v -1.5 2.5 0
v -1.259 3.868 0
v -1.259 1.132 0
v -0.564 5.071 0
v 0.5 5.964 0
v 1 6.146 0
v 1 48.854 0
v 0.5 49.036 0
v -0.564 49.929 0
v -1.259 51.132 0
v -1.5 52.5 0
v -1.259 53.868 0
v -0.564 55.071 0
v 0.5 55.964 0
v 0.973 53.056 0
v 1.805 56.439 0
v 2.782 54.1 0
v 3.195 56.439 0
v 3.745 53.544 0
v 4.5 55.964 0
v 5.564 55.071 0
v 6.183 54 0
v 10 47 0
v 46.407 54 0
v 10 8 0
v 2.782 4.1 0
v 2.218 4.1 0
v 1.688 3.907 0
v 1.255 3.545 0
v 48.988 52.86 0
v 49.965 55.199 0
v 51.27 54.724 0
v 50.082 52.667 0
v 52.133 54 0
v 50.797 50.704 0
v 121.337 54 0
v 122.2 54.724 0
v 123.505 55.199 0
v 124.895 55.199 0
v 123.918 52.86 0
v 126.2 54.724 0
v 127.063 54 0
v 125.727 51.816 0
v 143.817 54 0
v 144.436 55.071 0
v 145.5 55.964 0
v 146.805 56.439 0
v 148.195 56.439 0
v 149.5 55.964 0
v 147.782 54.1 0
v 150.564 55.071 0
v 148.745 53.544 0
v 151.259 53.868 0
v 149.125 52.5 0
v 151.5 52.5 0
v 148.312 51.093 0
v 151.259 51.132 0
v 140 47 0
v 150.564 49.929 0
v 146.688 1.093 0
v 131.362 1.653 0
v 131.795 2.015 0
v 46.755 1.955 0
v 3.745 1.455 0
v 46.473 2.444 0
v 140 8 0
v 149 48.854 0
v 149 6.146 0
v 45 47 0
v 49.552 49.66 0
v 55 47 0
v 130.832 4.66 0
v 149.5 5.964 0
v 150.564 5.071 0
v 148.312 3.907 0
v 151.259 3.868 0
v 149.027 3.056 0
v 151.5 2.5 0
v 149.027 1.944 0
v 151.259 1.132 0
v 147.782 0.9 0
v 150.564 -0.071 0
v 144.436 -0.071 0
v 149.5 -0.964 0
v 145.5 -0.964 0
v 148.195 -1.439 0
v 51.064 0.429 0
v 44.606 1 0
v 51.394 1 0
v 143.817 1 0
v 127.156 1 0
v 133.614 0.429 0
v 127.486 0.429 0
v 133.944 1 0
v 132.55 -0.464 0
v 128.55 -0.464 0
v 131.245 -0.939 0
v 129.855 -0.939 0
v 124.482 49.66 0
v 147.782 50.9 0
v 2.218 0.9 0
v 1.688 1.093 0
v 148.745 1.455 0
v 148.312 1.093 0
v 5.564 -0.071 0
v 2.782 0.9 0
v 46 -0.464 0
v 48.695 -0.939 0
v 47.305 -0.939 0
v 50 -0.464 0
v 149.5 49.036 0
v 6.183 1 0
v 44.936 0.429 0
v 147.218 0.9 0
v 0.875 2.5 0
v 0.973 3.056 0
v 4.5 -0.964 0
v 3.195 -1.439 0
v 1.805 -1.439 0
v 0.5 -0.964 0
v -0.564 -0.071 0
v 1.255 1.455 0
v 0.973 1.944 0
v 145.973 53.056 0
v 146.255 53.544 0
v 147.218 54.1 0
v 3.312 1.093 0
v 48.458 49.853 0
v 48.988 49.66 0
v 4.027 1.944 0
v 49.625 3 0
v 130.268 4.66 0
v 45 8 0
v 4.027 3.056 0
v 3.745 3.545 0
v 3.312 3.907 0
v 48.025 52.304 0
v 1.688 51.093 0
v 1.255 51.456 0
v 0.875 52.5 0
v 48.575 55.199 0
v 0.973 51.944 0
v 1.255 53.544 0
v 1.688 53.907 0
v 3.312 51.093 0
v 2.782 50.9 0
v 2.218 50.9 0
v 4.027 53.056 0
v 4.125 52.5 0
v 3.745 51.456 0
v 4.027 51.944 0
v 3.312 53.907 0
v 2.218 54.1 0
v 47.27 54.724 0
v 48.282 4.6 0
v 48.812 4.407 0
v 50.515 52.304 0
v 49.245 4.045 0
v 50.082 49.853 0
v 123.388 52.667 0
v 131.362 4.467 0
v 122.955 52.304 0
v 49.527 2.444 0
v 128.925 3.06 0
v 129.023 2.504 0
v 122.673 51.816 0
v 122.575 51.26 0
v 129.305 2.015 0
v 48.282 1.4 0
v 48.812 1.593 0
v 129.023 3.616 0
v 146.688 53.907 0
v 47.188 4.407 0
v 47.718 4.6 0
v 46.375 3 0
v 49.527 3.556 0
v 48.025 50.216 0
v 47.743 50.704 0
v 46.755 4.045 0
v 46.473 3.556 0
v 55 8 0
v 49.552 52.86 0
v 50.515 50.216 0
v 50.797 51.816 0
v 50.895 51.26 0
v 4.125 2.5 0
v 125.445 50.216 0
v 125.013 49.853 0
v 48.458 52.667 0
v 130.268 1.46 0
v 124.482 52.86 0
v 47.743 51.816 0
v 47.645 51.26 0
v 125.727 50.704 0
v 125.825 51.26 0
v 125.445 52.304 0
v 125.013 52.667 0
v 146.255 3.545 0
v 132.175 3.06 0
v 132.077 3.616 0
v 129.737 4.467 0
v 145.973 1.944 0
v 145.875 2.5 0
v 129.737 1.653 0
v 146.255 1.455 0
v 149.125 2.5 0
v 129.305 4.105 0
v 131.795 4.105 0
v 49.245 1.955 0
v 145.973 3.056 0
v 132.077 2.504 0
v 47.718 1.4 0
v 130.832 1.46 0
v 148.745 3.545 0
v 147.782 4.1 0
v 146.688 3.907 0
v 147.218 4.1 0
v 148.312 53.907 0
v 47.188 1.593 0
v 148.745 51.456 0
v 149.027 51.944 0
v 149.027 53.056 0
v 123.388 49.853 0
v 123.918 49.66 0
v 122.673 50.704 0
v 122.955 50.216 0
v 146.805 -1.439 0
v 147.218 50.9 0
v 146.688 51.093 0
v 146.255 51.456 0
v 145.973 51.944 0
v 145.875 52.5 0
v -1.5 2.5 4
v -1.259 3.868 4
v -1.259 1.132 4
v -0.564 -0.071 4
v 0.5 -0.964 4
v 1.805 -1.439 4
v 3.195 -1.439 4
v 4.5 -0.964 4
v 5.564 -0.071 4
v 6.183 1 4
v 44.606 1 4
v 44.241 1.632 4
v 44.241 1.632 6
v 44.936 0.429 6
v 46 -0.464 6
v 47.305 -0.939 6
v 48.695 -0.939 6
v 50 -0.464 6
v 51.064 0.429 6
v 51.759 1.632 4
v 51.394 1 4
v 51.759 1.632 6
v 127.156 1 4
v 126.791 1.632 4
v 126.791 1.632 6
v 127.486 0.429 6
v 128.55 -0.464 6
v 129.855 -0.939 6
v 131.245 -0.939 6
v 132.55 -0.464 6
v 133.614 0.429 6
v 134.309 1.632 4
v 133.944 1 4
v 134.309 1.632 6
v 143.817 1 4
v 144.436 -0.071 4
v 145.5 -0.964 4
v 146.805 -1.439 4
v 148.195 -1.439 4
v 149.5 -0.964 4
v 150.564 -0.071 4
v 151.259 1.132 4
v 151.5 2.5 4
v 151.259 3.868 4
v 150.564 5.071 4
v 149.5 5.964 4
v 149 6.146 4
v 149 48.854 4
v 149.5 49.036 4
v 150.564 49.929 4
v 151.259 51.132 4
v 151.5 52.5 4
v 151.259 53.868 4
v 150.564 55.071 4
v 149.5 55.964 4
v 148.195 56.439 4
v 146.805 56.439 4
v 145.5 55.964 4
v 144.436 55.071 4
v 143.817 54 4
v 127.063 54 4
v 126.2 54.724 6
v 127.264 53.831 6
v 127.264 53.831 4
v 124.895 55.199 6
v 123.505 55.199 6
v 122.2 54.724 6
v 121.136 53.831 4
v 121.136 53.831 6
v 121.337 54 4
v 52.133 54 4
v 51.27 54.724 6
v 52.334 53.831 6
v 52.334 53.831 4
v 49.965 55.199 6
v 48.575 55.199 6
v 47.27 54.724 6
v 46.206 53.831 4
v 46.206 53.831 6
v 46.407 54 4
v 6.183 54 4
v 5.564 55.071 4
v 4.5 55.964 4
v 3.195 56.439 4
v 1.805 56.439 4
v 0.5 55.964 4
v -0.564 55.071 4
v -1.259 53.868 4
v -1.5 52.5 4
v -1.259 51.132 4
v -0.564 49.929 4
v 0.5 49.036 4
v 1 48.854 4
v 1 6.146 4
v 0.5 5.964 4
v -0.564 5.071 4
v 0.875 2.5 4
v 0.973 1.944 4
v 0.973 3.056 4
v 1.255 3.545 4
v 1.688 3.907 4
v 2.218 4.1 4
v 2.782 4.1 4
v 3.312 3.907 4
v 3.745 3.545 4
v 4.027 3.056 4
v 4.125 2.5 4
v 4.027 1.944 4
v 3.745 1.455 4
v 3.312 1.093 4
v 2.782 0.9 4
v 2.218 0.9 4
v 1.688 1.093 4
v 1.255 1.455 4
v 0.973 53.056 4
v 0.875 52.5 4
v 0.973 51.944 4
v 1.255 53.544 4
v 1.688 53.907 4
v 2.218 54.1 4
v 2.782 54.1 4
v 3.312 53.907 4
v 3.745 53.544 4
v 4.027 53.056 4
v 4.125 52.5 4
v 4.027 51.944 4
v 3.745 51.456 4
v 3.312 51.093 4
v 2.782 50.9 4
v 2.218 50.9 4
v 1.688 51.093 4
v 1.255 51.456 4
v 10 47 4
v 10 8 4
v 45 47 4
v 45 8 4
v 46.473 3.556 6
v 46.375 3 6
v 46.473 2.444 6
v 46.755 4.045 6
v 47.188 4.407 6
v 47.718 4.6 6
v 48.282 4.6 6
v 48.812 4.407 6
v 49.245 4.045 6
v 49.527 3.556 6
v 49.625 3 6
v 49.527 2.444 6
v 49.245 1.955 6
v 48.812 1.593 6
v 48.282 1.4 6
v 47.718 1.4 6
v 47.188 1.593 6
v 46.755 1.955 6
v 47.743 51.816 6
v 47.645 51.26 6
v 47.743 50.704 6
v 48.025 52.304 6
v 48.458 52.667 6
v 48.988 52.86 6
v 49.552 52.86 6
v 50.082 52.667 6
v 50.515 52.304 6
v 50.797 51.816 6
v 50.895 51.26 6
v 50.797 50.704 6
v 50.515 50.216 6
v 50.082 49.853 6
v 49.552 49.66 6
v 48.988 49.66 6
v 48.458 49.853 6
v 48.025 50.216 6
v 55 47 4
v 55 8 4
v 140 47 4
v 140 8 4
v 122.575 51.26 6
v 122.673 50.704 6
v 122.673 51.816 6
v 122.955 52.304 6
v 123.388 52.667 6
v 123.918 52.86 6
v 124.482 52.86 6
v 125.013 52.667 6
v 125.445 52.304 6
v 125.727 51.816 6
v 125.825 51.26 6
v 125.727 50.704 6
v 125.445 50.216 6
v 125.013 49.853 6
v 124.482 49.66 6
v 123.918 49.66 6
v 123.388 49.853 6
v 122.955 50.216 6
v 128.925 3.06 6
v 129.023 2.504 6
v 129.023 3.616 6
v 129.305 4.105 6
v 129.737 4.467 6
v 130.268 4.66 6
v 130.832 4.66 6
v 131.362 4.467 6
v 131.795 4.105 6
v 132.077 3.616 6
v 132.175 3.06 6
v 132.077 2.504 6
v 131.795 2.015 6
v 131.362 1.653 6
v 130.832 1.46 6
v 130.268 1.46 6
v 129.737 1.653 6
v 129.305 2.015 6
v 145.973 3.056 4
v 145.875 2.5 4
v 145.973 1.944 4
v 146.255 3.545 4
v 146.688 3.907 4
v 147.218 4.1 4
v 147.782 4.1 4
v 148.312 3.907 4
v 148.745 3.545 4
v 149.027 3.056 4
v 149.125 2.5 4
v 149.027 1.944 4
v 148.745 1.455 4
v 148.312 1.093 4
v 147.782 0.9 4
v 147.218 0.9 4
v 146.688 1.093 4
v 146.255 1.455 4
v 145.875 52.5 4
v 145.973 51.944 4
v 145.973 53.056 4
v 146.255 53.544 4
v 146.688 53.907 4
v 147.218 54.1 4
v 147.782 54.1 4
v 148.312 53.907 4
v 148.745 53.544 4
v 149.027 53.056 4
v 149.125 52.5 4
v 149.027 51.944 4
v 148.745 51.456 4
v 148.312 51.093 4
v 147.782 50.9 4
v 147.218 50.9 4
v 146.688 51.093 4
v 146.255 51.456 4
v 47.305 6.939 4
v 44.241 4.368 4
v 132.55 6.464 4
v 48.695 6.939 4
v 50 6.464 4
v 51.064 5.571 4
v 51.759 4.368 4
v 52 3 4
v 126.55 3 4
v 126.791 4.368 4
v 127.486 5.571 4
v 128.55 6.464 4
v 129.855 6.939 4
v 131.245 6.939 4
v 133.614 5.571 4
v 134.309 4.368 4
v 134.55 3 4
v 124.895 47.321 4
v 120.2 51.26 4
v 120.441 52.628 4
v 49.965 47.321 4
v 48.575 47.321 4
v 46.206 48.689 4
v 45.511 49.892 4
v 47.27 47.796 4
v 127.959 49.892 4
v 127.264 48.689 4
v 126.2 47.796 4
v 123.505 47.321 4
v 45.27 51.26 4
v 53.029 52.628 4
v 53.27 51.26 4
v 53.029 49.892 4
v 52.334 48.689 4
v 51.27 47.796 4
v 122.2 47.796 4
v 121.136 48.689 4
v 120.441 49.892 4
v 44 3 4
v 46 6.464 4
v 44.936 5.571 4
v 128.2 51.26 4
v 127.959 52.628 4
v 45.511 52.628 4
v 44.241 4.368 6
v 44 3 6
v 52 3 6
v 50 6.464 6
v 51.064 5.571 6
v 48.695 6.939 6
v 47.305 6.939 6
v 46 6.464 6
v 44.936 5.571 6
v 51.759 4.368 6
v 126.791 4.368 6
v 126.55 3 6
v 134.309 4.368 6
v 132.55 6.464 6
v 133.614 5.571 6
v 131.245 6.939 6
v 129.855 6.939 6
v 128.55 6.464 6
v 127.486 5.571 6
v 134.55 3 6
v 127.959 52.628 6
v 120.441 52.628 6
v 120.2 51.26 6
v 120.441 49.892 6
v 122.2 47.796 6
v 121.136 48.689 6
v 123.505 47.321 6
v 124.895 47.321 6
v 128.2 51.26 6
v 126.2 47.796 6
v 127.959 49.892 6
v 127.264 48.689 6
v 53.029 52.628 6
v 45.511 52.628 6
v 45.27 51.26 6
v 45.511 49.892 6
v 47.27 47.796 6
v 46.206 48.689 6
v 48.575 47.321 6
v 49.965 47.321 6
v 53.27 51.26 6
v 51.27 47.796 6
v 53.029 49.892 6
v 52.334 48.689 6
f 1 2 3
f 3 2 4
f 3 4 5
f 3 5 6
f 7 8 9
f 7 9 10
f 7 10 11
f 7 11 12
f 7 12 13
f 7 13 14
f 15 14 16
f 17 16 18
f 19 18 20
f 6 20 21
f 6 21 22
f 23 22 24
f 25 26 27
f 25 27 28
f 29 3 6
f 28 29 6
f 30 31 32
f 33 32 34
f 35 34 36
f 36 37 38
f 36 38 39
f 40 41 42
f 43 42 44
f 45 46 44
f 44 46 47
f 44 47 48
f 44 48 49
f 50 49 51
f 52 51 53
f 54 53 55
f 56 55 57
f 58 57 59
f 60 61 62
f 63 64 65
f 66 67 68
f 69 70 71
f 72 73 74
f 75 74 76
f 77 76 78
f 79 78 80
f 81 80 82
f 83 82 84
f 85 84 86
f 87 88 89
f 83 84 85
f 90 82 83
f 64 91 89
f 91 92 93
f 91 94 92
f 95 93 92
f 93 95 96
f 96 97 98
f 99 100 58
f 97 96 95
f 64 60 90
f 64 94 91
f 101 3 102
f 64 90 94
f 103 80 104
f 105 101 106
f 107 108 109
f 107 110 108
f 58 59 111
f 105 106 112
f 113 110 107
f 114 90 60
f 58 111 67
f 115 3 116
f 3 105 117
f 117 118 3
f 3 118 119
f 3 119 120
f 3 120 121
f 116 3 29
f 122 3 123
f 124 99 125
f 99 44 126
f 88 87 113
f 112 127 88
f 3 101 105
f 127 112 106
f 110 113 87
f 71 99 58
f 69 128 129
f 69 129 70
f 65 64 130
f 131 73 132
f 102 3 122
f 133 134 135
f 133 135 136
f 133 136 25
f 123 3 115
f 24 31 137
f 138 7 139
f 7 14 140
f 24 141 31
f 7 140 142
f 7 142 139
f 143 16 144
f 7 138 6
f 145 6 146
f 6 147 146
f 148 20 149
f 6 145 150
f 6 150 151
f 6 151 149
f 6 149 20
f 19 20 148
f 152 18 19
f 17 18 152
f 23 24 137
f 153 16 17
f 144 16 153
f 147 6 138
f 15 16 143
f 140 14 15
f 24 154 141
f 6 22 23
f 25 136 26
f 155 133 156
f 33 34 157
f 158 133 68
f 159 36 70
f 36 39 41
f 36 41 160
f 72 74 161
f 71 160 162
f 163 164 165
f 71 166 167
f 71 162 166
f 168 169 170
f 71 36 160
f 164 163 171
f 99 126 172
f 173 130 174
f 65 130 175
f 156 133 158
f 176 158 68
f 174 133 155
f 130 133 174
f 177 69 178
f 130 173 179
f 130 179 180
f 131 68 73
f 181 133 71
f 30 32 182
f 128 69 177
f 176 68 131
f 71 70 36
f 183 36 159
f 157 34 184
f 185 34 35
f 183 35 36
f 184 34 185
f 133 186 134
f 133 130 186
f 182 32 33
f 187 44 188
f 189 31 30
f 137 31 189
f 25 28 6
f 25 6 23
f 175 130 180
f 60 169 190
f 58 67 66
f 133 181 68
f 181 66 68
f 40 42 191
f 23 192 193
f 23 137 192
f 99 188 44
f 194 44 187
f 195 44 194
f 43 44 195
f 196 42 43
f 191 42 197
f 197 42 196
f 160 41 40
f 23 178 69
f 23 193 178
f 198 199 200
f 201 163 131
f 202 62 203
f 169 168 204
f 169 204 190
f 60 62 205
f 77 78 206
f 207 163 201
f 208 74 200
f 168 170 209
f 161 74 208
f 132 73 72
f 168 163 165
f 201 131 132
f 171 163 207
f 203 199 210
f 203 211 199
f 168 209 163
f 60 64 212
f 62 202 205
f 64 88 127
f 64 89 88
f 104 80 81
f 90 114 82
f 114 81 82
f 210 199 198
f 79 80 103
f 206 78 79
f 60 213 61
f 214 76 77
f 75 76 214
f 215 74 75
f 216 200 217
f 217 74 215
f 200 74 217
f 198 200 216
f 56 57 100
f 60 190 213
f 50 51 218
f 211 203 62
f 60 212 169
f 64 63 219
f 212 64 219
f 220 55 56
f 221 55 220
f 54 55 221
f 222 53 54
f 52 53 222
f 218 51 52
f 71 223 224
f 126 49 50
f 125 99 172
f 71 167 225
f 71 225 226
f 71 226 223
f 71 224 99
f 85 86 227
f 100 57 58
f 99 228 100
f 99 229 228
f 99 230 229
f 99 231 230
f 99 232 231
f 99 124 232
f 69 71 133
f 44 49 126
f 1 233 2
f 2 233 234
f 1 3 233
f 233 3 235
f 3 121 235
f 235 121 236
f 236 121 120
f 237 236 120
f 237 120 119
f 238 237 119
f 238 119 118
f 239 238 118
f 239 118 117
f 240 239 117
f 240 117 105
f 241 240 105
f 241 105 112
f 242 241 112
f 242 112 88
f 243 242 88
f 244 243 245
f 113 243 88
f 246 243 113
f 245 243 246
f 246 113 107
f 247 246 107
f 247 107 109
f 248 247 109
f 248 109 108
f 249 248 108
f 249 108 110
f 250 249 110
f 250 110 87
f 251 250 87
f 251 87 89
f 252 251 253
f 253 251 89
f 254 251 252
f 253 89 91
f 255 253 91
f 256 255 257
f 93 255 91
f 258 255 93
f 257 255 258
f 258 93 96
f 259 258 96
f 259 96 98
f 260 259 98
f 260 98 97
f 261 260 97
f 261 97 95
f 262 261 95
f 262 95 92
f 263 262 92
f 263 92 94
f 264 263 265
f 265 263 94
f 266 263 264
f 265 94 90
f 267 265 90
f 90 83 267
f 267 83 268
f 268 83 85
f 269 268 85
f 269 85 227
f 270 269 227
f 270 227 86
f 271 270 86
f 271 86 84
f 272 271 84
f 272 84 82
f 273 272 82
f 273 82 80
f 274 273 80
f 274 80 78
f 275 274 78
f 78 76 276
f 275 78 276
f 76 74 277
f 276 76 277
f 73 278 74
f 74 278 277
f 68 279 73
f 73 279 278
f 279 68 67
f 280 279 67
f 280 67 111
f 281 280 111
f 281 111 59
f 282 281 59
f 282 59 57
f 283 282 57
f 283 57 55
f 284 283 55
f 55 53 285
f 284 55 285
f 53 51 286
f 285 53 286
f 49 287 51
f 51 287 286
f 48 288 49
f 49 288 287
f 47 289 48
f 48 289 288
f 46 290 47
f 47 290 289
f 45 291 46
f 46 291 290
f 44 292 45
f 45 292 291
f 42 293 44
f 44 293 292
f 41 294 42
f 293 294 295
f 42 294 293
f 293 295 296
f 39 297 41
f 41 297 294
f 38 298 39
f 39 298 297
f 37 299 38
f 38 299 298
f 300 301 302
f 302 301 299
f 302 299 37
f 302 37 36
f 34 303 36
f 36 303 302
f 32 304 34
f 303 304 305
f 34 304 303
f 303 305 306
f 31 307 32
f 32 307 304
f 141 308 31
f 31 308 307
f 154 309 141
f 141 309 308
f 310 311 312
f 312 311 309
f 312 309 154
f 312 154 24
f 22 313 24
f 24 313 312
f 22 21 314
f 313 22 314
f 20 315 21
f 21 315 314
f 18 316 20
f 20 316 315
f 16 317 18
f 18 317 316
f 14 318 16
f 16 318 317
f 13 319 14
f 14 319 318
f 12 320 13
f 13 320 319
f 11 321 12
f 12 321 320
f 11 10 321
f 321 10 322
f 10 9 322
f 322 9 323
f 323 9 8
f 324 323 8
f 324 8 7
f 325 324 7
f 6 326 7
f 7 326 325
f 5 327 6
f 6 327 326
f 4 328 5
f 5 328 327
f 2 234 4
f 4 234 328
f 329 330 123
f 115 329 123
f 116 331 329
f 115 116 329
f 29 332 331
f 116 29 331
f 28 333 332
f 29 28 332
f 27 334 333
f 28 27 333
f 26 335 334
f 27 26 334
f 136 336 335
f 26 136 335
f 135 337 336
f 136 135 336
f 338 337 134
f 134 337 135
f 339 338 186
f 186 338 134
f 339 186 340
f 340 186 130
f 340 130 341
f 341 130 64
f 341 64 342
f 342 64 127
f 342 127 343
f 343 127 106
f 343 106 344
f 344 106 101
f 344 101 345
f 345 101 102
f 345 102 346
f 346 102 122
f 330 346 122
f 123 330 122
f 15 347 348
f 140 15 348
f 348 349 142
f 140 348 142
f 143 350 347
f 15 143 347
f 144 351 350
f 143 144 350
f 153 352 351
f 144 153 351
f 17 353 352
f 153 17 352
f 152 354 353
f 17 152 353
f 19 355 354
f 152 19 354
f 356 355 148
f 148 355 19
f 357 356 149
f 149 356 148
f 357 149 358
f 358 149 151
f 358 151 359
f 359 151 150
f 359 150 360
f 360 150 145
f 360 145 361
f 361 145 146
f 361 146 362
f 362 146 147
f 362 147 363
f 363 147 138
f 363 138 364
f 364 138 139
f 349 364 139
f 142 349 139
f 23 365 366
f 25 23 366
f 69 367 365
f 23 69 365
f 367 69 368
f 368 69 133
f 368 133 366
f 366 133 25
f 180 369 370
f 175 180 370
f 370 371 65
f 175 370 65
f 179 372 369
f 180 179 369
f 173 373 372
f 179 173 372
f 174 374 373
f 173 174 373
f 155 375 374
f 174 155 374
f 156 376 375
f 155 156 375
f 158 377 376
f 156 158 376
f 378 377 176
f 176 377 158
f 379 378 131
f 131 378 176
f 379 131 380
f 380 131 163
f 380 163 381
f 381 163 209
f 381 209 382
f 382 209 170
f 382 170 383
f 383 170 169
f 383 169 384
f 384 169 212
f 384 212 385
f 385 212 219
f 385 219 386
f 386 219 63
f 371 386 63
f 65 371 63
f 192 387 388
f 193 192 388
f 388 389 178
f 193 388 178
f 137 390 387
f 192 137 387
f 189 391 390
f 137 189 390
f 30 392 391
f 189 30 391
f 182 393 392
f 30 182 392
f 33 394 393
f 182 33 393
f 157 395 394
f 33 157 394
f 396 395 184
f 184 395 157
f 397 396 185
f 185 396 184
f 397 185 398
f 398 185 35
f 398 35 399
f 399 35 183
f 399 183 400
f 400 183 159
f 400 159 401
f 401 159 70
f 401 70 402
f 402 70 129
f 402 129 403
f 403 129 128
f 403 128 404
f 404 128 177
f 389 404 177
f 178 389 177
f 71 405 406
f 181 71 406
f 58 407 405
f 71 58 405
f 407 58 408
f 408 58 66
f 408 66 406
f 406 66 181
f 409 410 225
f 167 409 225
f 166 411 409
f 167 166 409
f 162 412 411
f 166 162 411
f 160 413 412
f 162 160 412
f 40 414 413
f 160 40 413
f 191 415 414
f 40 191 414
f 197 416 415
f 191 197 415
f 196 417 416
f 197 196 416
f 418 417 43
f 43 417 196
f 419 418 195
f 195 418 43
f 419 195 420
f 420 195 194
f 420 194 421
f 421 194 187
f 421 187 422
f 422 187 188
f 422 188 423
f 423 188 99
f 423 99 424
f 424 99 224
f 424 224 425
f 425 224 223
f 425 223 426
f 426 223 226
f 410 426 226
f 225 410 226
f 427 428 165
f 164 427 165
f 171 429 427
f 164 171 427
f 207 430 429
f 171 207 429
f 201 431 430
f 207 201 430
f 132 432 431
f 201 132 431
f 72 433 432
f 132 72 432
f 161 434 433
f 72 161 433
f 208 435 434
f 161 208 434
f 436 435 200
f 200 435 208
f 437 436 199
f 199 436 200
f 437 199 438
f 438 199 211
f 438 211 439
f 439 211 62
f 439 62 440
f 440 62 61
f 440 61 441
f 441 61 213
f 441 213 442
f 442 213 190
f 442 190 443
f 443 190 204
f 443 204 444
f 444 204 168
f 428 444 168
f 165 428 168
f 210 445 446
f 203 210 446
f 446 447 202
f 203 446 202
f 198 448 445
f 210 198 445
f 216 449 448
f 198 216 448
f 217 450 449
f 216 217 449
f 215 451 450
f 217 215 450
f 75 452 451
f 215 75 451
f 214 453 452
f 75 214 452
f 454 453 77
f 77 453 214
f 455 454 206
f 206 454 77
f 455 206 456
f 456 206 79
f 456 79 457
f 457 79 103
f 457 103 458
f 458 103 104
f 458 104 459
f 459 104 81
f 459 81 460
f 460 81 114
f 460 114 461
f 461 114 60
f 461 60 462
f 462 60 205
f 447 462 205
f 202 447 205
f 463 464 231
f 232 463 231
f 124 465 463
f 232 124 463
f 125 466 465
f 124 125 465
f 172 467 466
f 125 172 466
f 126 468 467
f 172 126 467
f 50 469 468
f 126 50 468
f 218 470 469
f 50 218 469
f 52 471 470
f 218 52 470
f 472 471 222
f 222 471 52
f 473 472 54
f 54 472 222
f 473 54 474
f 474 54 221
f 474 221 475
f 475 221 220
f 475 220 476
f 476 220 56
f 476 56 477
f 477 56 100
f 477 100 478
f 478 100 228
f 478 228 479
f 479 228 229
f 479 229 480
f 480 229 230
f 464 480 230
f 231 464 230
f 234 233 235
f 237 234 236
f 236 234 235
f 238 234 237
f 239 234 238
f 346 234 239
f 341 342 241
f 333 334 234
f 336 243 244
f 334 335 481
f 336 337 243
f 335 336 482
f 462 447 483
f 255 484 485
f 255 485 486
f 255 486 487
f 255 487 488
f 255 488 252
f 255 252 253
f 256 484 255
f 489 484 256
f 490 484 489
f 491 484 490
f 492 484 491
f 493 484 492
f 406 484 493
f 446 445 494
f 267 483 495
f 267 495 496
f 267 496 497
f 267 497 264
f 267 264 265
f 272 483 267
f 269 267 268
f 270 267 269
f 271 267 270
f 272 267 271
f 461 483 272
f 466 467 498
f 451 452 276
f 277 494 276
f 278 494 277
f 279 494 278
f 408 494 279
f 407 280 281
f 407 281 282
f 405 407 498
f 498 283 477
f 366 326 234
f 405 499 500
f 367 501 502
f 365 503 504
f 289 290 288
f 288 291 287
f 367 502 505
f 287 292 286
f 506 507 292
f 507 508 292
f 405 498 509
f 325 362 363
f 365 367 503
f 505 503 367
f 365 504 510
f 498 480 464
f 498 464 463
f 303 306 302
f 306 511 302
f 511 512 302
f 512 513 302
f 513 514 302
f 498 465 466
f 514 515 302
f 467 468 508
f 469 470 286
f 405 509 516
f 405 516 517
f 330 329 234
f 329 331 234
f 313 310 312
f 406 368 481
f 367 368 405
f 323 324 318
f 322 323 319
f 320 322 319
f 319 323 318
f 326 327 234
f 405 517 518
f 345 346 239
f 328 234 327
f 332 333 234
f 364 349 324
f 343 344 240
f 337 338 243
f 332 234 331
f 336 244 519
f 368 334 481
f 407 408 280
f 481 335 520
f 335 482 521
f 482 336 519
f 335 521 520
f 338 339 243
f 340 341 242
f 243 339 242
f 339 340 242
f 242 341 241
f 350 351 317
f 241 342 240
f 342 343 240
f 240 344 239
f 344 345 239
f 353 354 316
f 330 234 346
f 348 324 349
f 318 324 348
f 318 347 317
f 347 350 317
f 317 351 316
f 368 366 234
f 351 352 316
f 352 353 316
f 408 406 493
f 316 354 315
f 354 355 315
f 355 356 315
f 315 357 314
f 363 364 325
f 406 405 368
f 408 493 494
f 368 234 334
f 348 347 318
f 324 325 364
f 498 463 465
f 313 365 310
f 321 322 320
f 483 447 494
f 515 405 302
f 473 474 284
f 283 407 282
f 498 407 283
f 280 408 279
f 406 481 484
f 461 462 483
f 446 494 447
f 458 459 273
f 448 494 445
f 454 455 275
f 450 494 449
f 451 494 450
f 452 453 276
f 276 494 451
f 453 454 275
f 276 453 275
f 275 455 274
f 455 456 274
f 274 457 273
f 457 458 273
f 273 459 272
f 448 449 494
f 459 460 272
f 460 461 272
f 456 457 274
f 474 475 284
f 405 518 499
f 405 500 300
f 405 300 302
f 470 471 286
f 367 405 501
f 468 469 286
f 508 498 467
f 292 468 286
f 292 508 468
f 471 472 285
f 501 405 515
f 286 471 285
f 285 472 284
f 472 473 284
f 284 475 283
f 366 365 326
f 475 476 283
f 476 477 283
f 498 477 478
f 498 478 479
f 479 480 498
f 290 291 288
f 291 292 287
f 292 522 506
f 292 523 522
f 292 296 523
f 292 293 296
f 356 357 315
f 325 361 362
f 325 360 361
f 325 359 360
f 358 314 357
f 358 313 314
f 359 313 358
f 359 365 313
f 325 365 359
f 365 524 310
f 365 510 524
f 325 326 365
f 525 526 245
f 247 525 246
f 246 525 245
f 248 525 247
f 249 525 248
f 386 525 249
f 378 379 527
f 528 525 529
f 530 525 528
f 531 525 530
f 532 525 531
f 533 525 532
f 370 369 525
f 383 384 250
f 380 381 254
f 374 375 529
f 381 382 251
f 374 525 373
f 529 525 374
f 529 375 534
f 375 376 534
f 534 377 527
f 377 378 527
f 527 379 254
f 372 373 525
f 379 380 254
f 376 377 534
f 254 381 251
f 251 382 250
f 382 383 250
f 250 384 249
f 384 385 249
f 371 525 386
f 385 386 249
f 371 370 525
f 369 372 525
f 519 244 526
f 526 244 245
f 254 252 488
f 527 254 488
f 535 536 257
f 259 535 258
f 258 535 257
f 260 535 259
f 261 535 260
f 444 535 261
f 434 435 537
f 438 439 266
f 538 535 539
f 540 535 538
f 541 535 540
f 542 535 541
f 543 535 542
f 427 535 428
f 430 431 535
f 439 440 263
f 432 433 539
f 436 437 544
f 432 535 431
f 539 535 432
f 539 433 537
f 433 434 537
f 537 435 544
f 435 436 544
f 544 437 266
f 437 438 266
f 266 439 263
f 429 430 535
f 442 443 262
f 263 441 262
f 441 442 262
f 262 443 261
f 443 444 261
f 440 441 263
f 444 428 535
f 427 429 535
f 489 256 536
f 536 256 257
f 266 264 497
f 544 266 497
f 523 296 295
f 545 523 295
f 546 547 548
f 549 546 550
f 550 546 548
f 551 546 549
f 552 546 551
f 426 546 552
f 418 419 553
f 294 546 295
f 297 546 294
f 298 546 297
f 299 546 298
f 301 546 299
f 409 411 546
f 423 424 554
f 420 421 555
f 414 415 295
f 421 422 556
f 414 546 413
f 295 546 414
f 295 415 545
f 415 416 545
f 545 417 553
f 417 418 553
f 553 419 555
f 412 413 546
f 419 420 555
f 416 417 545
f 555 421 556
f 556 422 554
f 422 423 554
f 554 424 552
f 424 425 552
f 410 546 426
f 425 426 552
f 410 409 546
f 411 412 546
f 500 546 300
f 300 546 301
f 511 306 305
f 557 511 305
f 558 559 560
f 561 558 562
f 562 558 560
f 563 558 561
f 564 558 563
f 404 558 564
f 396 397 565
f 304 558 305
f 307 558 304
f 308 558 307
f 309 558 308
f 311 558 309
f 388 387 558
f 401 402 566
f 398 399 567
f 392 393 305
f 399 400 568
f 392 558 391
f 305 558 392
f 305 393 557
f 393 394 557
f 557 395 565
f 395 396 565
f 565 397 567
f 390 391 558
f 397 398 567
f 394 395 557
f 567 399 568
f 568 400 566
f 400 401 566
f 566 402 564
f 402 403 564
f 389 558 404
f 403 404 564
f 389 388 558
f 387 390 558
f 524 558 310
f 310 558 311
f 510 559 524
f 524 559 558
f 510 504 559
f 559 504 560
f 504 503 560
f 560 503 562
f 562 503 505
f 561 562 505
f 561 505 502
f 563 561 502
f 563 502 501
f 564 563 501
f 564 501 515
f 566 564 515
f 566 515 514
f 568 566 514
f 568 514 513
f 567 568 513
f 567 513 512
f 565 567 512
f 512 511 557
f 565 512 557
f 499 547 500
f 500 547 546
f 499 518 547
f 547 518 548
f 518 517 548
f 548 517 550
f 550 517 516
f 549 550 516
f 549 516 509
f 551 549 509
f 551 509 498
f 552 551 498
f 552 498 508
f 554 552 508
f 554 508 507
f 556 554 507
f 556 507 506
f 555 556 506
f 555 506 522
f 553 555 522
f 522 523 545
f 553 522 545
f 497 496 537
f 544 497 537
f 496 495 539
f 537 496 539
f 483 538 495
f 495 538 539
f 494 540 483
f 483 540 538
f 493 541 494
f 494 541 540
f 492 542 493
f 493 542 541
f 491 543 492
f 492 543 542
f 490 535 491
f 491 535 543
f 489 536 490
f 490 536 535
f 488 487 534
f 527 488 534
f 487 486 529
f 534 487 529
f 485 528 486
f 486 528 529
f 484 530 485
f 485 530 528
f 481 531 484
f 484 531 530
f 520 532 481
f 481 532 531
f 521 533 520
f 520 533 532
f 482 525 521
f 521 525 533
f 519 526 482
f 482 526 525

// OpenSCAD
$fn=18;
holes_size_inner=3.25;
holes_size_outter=8;
holes_support = 6;

difference() 
{
	// Solids
	union()
	{
	// LCD
	translate([1,1,0])
		cube(size=[148,53,4]);
	translate([2.5,2.5,0])
		cylinder(h=4,d=holes_size_outter);
	translate([2.5,52.5,0])
		cylinder(h=4,d=holes_size_outter);
	translate([147.5,2.5,0])
		cylinder(h=4,d=holes_size_outter);
	translate([147.5,52.5,0])
		cylinder(h=4,d=holes_size_outter);

	// ARDUINO
	translate([48,51.26,0])
	{
        //RB
        translate([0,-48.26,0]) cylinder(d=holes_size_outter,h=holes_support);
        //LB
        translate([1.27,0,0])cylinder(d=holes_size_outter,h=holes_support);
        //RT
        translate([82.55,-48.26,0])cylinder(d=holes_size_outter,h=holes_support);
        //LT
        translate([76.2,0,0])cylinder(d=holes_size_outter,h=holes_support);
	}

	}
	// Holes

   // LCD
	translate([2.5,2.5,-1])
		cylinder(h=7,d=holes_size_inner);
	translate([2.5,52.5,-1])
		cylinder(h=7,d=holes_size_inner);
	translate([147.5,2.5,-1])
		cylinder(h=7,d=holes_size_inner);
	translate([147.5,52.5,-1])
		cylinder(h=7,d=holes_size_inner);
	translate([10,8,-1])
		cube(size=[35,39,7]);
	translate([55,8,-1])
		cube(size=[85,39,7]);


	// ARDUINO
	translate([48,51.26,-1])
	{
        //RB
        translate([0,-48.26,0]) cylinder(d=holes_size_inner,h=holes_support+2);
        //LB
        translate([1.27,0,0])cylinder(d=holes_size_inner,h=holes_support+2);
        //RT
        translate([82.55,-48.2,0])cylinder(d=holes_size_inner,h=holes_support+2);
        //LT
        translate([76.2,0,0])cylinder(d=holes_size_inner,h=holes_support+2);
	}

}
